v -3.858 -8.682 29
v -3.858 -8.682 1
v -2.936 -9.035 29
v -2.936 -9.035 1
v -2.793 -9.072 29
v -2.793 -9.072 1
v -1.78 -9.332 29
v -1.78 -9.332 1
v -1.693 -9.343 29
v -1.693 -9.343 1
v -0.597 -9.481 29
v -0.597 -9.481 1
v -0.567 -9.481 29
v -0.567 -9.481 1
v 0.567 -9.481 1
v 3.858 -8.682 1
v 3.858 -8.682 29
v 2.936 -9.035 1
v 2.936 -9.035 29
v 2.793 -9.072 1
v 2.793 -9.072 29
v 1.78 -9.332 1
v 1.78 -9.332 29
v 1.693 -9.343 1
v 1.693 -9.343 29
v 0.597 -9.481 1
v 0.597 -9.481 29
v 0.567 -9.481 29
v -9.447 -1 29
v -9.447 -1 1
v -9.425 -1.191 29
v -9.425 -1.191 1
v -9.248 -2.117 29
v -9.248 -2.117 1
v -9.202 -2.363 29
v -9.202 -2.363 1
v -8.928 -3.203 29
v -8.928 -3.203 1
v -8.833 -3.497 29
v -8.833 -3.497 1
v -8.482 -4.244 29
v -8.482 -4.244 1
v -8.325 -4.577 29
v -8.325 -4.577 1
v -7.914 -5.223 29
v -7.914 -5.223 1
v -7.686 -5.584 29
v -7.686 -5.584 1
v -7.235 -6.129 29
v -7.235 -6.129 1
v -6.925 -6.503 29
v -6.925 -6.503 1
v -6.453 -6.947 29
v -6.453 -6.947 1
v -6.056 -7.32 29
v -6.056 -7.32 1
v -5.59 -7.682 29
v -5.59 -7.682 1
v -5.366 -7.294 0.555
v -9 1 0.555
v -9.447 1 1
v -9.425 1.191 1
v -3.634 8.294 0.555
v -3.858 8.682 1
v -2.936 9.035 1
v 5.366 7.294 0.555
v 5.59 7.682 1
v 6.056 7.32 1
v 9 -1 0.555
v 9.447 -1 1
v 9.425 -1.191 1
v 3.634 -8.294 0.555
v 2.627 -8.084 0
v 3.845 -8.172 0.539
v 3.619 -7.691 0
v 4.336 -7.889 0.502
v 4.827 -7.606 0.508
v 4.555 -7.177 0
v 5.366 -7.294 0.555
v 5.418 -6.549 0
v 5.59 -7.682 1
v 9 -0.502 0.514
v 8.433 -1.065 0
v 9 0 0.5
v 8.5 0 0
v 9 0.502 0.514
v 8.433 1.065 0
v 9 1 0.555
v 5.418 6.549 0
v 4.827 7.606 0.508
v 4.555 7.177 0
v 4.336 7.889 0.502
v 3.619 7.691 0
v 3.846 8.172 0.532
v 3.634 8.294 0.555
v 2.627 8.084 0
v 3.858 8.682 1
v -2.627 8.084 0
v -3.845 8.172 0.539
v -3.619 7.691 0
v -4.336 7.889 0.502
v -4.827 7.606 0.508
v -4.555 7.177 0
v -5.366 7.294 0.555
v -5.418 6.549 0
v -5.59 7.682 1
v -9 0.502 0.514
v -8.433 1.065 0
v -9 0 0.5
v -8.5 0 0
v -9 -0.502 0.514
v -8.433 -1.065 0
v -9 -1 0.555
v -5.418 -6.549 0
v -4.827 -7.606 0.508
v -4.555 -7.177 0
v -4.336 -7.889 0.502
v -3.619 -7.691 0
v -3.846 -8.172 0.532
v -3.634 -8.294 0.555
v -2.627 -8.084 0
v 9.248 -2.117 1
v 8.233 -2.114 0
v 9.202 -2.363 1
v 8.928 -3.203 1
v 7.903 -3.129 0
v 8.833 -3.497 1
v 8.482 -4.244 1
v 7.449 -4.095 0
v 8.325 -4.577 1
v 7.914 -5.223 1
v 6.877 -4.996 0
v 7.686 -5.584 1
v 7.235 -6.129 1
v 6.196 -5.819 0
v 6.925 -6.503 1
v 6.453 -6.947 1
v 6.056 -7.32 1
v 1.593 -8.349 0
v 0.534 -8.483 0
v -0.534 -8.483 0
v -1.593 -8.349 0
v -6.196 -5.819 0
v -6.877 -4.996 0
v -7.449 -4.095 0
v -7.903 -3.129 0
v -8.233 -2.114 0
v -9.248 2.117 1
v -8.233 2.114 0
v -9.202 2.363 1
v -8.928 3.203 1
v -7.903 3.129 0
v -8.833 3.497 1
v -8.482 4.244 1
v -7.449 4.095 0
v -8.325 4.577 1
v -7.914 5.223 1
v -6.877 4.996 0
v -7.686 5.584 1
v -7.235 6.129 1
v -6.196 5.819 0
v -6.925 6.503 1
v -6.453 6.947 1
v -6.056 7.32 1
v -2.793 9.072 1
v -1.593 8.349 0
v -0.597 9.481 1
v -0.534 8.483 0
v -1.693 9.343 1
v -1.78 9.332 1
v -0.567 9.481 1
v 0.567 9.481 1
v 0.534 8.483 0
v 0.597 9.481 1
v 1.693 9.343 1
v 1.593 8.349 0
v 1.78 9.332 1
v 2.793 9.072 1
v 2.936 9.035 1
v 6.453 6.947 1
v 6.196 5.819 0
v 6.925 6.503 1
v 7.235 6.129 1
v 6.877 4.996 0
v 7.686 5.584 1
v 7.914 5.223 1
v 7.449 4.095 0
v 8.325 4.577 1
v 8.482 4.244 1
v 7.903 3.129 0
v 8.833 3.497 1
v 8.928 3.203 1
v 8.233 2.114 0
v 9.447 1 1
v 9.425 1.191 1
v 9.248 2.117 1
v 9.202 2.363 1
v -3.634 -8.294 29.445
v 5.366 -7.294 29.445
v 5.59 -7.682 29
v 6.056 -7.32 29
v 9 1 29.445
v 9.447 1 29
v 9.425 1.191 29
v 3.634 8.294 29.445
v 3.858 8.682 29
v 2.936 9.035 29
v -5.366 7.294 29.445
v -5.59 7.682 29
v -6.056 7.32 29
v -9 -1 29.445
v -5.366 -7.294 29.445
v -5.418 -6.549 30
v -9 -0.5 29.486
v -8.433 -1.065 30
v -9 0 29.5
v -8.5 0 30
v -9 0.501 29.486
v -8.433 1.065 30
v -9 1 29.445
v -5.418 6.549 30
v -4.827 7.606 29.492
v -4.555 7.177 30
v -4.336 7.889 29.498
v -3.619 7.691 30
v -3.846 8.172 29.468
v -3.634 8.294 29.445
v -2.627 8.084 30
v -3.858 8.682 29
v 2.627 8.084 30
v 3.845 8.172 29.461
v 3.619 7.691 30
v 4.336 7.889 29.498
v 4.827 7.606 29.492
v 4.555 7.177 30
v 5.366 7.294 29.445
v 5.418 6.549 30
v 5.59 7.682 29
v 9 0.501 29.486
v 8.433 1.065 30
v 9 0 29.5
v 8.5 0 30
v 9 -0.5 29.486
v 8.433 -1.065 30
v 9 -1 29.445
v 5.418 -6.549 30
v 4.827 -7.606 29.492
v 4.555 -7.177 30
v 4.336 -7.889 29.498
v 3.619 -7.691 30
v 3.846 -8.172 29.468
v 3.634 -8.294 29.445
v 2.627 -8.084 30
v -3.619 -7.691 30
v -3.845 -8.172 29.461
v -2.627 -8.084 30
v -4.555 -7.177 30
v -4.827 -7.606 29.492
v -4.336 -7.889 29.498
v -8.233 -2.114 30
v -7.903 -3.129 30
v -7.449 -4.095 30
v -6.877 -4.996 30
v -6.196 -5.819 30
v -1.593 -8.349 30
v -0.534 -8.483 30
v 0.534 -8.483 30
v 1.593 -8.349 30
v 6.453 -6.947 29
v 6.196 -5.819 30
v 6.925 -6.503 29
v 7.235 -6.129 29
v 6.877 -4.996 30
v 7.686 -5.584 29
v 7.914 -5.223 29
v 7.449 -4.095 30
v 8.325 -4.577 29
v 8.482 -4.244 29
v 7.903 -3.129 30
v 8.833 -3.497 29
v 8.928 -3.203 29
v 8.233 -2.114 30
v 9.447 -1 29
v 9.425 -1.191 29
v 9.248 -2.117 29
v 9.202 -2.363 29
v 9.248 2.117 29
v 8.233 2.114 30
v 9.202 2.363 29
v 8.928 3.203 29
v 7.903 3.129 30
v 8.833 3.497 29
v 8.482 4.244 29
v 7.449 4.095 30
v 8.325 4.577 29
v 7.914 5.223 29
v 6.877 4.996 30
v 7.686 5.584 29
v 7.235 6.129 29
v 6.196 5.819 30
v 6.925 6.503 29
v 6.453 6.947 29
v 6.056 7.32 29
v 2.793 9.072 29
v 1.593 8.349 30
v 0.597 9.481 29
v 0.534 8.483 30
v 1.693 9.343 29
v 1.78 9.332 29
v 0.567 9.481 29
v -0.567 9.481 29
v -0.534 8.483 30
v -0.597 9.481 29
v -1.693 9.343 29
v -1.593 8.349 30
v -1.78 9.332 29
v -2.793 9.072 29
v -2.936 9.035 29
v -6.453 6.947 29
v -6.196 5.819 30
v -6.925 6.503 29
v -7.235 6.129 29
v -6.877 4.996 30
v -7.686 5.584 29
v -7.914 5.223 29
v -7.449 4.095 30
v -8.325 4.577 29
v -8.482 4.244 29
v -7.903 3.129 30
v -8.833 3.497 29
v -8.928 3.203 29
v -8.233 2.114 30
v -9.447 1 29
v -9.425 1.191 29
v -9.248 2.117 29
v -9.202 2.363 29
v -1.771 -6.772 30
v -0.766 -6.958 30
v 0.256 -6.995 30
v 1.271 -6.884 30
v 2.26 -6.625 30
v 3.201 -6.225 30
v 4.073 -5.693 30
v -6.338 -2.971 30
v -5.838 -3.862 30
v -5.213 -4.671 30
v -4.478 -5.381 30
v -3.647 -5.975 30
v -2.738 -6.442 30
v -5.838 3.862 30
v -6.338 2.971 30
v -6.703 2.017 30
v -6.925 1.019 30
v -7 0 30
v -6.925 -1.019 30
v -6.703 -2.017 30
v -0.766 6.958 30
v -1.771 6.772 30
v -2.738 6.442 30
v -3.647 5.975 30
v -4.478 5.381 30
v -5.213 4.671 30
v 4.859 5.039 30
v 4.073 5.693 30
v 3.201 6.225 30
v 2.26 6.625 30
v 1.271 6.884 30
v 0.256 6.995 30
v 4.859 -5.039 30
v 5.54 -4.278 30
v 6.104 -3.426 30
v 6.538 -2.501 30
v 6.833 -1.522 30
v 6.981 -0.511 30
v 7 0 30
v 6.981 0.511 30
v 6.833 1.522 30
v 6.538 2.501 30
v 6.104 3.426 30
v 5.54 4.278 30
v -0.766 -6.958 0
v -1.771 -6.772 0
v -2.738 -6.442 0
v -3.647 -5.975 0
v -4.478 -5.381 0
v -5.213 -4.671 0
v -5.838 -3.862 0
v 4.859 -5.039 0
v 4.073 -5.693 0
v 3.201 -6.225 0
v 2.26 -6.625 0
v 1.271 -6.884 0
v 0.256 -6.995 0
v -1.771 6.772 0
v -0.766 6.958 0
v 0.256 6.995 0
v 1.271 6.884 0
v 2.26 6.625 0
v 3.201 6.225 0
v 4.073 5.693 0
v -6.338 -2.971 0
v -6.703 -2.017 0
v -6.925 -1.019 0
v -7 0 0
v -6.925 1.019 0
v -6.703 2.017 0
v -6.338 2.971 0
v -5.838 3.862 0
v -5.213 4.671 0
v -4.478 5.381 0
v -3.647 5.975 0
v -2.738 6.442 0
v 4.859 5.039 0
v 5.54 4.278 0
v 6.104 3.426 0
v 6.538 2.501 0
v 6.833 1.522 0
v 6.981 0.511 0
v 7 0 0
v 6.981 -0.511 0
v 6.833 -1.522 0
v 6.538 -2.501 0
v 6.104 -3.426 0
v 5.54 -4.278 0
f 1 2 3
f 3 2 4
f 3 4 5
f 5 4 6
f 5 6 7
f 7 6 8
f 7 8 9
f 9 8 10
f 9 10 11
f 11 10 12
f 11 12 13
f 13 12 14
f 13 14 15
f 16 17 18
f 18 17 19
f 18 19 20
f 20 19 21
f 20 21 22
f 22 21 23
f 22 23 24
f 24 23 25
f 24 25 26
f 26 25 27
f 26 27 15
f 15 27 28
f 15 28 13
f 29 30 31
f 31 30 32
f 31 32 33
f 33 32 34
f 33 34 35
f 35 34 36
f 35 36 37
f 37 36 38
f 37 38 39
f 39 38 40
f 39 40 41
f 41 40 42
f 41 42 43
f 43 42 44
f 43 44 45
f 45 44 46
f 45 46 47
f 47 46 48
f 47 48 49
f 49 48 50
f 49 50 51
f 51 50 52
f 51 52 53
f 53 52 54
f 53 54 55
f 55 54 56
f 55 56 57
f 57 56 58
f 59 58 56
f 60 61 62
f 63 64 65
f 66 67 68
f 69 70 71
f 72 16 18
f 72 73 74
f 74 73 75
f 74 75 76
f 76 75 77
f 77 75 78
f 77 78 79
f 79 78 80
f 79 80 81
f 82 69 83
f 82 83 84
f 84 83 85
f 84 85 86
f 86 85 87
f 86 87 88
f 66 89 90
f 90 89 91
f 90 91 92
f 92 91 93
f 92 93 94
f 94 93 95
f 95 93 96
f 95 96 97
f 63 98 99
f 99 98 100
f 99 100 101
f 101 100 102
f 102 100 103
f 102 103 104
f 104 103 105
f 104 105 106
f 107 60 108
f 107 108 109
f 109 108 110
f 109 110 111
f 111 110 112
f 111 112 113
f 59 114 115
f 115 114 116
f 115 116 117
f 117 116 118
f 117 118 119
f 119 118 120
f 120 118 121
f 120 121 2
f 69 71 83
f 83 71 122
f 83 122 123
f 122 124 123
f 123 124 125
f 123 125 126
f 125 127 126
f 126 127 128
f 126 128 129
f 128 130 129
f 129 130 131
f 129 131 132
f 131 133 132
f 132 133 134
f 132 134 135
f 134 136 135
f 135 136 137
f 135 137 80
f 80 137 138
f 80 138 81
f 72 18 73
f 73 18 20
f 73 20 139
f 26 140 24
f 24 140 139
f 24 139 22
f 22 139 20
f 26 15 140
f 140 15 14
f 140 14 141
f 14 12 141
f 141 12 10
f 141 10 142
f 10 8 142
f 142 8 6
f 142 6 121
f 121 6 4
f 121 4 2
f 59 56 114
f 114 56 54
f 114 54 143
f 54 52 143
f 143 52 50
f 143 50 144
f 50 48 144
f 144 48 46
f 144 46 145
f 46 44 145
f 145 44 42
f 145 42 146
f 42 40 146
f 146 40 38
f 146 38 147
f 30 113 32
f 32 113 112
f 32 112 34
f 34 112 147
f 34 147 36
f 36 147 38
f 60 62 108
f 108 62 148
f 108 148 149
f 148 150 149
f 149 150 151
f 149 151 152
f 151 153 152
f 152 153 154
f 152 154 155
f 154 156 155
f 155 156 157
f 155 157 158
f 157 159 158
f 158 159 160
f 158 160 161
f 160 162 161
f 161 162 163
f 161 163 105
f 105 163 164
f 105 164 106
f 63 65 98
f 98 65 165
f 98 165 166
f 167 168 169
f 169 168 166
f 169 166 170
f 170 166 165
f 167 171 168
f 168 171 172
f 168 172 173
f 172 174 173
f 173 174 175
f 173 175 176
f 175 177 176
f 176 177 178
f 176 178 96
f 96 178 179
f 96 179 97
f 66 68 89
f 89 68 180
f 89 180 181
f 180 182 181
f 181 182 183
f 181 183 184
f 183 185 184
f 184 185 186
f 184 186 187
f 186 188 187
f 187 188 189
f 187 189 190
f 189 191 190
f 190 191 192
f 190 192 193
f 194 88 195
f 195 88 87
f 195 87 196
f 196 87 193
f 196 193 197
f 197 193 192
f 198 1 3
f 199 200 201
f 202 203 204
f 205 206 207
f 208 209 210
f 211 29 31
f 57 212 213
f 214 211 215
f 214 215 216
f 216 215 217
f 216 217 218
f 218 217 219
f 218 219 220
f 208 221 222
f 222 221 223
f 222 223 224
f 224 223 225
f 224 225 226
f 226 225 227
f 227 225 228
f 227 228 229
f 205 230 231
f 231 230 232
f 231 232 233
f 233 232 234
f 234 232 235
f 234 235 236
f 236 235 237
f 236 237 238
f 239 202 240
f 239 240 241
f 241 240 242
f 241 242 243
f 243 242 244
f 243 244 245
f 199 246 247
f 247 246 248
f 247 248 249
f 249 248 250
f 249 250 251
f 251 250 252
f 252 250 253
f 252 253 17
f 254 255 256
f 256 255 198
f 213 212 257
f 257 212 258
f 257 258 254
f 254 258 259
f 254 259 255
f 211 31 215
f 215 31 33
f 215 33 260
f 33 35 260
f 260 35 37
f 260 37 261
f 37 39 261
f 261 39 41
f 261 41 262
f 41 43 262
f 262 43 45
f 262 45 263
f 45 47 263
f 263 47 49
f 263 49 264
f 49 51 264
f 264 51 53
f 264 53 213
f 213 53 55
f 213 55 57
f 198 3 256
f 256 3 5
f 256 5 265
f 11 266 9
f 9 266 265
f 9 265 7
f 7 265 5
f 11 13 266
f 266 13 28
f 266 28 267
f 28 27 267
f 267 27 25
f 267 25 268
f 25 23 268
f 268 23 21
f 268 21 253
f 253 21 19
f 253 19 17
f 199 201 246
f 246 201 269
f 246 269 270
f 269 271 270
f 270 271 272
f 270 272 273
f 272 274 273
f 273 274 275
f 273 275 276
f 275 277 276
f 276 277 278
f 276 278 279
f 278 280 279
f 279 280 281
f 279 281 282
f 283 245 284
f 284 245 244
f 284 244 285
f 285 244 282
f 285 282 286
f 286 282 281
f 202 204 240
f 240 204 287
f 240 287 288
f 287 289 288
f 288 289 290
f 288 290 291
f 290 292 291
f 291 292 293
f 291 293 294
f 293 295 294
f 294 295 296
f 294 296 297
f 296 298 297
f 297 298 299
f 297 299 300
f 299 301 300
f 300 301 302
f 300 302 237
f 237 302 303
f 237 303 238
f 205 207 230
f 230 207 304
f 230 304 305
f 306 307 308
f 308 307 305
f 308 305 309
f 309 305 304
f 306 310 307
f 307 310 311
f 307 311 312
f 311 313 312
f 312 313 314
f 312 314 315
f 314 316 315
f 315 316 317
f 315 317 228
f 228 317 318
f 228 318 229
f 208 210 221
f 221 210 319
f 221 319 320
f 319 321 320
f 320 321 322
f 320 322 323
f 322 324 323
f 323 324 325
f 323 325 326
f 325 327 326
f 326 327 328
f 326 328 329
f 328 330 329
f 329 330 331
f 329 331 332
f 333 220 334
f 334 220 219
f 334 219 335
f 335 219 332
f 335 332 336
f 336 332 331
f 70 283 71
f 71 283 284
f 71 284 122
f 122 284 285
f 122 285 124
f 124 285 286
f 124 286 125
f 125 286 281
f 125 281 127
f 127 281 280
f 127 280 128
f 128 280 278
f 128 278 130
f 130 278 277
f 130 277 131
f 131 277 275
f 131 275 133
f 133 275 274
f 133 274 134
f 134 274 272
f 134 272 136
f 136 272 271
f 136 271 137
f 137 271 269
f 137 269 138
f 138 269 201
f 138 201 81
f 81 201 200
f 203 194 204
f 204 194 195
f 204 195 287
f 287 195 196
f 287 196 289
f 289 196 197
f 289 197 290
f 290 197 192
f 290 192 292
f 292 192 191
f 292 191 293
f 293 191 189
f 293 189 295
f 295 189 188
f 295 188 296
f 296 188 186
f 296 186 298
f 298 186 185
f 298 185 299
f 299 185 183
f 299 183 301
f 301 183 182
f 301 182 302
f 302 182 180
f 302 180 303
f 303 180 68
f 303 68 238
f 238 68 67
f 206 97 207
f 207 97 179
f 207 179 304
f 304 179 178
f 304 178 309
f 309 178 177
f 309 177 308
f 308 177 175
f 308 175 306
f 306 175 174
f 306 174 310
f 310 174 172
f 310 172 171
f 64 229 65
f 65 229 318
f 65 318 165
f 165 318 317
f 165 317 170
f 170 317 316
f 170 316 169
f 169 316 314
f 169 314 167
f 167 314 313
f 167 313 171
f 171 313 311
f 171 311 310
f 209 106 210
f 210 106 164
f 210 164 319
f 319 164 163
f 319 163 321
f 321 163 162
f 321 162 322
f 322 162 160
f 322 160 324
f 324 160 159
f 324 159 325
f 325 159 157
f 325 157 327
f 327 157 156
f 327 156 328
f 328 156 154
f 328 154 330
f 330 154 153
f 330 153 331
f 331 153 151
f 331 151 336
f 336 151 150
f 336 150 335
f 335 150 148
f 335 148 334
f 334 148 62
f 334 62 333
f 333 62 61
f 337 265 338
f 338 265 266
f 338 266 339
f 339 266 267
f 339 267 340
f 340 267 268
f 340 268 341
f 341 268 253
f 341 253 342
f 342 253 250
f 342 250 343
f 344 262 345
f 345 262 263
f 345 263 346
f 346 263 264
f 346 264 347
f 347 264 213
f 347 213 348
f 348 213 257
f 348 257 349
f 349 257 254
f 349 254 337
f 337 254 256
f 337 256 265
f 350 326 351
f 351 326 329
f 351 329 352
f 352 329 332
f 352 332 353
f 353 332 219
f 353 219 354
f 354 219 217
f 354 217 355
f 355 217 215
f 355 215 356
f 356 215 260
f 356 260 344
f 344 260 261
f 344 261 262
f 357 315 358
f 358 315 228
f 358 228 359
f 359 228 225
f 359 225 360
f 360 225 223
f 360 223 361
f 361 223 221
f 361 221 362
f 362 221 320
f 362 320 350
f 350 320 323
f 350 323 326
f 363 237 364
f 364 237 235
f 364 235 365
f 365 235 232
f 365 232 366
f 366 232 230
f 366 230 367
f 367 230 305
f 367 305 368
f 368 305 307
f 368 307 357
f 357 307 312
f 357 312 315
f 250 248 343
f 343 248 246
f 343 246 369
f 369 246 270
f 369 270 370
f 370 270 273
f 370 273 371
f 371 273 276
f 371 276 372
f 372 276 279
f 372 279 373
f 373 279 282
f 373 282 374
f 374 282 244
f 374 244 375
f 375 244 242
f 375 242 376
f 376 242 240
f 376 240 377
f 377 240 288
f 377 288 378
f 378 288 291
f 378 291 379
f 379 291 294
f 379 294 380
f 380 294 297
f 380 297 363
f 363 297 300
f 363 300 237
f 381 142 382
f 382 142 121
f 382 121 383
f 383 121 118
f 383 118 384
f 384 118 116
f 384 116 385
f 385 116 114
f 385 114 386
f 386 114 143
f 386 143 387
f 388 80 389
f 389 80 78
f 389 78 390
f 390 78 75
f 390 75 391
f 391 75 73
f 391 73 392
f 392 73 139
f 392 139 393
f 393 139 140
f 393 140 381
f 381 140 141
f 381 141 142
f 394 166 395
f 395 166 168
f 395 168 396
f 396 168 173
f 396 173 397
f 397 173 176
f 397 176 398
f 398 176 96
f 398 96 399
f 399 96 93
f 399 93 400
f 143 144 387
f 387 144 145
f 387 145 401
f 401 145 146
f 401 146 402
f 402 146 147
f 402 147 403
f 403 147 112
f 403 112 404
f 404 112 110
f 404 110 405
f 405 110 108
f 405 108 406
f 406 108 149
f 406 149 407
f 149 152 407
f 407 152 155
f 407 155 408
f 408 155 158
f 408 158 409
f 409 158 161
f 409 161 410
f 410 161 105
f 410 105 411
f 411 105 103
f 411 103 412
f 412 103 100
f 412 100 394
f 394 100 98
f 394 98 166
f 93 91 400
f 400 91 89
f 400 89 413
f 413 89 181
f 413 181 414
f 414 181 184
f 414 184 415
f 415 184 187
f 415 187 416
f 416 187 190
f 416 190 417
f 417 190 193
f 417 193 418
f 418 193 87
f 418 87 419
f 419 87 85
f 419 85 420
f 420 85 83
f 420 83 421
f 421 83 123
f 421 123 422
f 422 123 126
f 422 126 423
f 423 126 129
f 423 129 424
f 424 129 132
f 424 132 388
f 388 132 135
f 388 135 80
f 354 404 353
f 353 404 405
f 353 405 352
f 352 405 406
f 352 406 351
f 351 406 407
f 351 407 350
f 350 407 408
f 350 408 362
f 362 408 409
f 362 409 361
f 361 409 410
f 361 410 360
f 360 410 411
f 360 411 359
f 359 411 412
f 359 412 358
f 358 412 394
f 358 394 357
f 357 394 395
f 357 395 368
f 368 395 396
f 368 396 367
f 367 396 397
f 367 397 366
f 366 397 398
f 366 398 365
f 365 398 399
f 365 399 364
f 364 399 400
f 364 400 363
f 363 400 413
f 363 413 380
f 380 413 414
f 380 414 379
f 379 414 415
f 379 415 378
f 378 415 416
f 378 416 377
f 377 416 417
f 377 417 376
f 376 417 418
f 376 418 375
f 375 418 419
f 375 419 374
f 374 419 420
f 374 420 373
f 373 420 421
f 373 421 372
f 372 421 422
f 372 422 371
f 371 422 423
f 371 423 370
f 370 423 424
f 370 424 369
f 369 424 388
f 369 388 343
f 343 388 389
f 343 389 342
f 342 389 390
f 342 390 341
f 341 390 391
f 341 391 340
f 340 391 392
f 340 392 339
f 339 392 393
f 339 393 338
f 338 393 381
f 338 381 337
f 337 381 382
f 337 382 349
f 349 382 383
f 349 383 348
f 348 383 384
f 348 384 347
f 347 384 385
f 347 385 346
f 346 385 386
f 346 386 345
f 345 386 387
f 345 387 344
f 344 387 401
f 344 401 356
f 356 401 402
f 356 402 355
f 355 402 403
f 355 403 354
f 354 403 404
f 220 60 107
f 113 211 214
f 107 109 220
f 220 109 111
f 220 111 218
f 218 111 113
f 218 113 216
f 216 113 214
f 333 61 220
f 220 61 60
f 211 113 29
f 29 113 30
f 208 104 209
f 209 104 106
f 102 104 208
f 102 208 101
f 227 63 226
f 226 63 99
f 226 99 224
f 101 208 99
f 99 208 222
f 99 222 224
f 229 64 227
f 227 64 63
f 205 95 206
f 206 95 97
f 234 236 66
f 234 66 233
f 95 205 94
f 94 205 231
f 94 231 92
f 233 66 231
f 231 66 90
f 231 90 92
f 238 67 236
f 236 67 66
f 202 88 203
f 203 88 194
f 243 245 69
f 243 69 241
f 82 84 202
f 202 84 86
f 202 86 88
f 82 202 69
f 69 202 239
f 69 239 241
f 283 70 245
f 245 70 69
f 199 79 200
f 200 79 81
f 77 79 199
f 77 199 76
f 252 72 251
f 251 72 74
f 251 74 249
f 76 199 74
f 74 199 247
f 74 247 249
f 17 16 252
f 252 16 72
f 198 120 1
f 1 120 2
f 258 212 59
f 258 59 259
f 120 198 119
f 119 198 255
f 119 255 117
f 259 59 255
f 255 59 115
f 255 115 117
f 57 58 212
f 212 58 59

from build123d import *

# Parameters (mm, degrees)
SKETCH_1_R          = 9.5
SKETCH_1_R_2        = 7
EXTRUDE_1_DEPTH     = 30
CHAMFER_1_SIZE      = 1
SKETCH_2_W          = 1
SKETCH_2_H          = 2
CUT_EXTRUDE_1_DEPTH = 33.870959828


with BuildPart() as part:
    # 스케치1 → 보스-돌출1 (new body)
    with BuildSketch(Plane.XY):
        Circle(SKETCH_1_R)
        Circle(SKETCH_1_R_2, mode=Mode.SUBTRACT)
    extrude(amount=EXTRUDE_1_DEPTH)

    # 모따기1
    chamfer_1_edges = [part.edges().sort_by_distance(p)[0] for p in [
        (-9.5, 0, 0),
        (-9.5, 0, 30),
    ]]
    chamfer(chamfer_1_edges, length=CHAMFER_1_SIZE)

    # 스케치2 → 컷-돌출1 (cut, through all)
    with BuildSketch(Plane.XY):
        Polygon((-3.633974596, 8.294228634), (-5.366025404, 7.294228634), (-5.866025404, 8.160254038), (-4.133974596, 9.160254038), align=None)
        with Locations((-9.5, 0)):
            Rectangle(SKETCH_2_W, SKETCH_2_H)
        Polygon((5.366025404, 7.294228634), (3.633974596, 8.294228634), (4.133974596, 9.160254038), (5.866025404, 8.160254038), align=None)
        with Locations((9.5, 0)):
            Rectangle(SKETCH_2_W, SKETCH_2_H)
        Polygon((3.633974596, -8.294228634), (5.366025404, -7.294228634), (5.866025404, -8.160254038), (4.133974596, -9.160254038), align=None)
        Polygon((-5.366025404, -7.294228634), (-3.633974596, -8.294228634), (-4.133974596, -9.160254038), (-5.866025404, -8.160254038), align=None)
    extrude(amount=CUT_EXTRUDE_1_DEPTH, mode=Mode.SUBTRACT)


solid = part.part
